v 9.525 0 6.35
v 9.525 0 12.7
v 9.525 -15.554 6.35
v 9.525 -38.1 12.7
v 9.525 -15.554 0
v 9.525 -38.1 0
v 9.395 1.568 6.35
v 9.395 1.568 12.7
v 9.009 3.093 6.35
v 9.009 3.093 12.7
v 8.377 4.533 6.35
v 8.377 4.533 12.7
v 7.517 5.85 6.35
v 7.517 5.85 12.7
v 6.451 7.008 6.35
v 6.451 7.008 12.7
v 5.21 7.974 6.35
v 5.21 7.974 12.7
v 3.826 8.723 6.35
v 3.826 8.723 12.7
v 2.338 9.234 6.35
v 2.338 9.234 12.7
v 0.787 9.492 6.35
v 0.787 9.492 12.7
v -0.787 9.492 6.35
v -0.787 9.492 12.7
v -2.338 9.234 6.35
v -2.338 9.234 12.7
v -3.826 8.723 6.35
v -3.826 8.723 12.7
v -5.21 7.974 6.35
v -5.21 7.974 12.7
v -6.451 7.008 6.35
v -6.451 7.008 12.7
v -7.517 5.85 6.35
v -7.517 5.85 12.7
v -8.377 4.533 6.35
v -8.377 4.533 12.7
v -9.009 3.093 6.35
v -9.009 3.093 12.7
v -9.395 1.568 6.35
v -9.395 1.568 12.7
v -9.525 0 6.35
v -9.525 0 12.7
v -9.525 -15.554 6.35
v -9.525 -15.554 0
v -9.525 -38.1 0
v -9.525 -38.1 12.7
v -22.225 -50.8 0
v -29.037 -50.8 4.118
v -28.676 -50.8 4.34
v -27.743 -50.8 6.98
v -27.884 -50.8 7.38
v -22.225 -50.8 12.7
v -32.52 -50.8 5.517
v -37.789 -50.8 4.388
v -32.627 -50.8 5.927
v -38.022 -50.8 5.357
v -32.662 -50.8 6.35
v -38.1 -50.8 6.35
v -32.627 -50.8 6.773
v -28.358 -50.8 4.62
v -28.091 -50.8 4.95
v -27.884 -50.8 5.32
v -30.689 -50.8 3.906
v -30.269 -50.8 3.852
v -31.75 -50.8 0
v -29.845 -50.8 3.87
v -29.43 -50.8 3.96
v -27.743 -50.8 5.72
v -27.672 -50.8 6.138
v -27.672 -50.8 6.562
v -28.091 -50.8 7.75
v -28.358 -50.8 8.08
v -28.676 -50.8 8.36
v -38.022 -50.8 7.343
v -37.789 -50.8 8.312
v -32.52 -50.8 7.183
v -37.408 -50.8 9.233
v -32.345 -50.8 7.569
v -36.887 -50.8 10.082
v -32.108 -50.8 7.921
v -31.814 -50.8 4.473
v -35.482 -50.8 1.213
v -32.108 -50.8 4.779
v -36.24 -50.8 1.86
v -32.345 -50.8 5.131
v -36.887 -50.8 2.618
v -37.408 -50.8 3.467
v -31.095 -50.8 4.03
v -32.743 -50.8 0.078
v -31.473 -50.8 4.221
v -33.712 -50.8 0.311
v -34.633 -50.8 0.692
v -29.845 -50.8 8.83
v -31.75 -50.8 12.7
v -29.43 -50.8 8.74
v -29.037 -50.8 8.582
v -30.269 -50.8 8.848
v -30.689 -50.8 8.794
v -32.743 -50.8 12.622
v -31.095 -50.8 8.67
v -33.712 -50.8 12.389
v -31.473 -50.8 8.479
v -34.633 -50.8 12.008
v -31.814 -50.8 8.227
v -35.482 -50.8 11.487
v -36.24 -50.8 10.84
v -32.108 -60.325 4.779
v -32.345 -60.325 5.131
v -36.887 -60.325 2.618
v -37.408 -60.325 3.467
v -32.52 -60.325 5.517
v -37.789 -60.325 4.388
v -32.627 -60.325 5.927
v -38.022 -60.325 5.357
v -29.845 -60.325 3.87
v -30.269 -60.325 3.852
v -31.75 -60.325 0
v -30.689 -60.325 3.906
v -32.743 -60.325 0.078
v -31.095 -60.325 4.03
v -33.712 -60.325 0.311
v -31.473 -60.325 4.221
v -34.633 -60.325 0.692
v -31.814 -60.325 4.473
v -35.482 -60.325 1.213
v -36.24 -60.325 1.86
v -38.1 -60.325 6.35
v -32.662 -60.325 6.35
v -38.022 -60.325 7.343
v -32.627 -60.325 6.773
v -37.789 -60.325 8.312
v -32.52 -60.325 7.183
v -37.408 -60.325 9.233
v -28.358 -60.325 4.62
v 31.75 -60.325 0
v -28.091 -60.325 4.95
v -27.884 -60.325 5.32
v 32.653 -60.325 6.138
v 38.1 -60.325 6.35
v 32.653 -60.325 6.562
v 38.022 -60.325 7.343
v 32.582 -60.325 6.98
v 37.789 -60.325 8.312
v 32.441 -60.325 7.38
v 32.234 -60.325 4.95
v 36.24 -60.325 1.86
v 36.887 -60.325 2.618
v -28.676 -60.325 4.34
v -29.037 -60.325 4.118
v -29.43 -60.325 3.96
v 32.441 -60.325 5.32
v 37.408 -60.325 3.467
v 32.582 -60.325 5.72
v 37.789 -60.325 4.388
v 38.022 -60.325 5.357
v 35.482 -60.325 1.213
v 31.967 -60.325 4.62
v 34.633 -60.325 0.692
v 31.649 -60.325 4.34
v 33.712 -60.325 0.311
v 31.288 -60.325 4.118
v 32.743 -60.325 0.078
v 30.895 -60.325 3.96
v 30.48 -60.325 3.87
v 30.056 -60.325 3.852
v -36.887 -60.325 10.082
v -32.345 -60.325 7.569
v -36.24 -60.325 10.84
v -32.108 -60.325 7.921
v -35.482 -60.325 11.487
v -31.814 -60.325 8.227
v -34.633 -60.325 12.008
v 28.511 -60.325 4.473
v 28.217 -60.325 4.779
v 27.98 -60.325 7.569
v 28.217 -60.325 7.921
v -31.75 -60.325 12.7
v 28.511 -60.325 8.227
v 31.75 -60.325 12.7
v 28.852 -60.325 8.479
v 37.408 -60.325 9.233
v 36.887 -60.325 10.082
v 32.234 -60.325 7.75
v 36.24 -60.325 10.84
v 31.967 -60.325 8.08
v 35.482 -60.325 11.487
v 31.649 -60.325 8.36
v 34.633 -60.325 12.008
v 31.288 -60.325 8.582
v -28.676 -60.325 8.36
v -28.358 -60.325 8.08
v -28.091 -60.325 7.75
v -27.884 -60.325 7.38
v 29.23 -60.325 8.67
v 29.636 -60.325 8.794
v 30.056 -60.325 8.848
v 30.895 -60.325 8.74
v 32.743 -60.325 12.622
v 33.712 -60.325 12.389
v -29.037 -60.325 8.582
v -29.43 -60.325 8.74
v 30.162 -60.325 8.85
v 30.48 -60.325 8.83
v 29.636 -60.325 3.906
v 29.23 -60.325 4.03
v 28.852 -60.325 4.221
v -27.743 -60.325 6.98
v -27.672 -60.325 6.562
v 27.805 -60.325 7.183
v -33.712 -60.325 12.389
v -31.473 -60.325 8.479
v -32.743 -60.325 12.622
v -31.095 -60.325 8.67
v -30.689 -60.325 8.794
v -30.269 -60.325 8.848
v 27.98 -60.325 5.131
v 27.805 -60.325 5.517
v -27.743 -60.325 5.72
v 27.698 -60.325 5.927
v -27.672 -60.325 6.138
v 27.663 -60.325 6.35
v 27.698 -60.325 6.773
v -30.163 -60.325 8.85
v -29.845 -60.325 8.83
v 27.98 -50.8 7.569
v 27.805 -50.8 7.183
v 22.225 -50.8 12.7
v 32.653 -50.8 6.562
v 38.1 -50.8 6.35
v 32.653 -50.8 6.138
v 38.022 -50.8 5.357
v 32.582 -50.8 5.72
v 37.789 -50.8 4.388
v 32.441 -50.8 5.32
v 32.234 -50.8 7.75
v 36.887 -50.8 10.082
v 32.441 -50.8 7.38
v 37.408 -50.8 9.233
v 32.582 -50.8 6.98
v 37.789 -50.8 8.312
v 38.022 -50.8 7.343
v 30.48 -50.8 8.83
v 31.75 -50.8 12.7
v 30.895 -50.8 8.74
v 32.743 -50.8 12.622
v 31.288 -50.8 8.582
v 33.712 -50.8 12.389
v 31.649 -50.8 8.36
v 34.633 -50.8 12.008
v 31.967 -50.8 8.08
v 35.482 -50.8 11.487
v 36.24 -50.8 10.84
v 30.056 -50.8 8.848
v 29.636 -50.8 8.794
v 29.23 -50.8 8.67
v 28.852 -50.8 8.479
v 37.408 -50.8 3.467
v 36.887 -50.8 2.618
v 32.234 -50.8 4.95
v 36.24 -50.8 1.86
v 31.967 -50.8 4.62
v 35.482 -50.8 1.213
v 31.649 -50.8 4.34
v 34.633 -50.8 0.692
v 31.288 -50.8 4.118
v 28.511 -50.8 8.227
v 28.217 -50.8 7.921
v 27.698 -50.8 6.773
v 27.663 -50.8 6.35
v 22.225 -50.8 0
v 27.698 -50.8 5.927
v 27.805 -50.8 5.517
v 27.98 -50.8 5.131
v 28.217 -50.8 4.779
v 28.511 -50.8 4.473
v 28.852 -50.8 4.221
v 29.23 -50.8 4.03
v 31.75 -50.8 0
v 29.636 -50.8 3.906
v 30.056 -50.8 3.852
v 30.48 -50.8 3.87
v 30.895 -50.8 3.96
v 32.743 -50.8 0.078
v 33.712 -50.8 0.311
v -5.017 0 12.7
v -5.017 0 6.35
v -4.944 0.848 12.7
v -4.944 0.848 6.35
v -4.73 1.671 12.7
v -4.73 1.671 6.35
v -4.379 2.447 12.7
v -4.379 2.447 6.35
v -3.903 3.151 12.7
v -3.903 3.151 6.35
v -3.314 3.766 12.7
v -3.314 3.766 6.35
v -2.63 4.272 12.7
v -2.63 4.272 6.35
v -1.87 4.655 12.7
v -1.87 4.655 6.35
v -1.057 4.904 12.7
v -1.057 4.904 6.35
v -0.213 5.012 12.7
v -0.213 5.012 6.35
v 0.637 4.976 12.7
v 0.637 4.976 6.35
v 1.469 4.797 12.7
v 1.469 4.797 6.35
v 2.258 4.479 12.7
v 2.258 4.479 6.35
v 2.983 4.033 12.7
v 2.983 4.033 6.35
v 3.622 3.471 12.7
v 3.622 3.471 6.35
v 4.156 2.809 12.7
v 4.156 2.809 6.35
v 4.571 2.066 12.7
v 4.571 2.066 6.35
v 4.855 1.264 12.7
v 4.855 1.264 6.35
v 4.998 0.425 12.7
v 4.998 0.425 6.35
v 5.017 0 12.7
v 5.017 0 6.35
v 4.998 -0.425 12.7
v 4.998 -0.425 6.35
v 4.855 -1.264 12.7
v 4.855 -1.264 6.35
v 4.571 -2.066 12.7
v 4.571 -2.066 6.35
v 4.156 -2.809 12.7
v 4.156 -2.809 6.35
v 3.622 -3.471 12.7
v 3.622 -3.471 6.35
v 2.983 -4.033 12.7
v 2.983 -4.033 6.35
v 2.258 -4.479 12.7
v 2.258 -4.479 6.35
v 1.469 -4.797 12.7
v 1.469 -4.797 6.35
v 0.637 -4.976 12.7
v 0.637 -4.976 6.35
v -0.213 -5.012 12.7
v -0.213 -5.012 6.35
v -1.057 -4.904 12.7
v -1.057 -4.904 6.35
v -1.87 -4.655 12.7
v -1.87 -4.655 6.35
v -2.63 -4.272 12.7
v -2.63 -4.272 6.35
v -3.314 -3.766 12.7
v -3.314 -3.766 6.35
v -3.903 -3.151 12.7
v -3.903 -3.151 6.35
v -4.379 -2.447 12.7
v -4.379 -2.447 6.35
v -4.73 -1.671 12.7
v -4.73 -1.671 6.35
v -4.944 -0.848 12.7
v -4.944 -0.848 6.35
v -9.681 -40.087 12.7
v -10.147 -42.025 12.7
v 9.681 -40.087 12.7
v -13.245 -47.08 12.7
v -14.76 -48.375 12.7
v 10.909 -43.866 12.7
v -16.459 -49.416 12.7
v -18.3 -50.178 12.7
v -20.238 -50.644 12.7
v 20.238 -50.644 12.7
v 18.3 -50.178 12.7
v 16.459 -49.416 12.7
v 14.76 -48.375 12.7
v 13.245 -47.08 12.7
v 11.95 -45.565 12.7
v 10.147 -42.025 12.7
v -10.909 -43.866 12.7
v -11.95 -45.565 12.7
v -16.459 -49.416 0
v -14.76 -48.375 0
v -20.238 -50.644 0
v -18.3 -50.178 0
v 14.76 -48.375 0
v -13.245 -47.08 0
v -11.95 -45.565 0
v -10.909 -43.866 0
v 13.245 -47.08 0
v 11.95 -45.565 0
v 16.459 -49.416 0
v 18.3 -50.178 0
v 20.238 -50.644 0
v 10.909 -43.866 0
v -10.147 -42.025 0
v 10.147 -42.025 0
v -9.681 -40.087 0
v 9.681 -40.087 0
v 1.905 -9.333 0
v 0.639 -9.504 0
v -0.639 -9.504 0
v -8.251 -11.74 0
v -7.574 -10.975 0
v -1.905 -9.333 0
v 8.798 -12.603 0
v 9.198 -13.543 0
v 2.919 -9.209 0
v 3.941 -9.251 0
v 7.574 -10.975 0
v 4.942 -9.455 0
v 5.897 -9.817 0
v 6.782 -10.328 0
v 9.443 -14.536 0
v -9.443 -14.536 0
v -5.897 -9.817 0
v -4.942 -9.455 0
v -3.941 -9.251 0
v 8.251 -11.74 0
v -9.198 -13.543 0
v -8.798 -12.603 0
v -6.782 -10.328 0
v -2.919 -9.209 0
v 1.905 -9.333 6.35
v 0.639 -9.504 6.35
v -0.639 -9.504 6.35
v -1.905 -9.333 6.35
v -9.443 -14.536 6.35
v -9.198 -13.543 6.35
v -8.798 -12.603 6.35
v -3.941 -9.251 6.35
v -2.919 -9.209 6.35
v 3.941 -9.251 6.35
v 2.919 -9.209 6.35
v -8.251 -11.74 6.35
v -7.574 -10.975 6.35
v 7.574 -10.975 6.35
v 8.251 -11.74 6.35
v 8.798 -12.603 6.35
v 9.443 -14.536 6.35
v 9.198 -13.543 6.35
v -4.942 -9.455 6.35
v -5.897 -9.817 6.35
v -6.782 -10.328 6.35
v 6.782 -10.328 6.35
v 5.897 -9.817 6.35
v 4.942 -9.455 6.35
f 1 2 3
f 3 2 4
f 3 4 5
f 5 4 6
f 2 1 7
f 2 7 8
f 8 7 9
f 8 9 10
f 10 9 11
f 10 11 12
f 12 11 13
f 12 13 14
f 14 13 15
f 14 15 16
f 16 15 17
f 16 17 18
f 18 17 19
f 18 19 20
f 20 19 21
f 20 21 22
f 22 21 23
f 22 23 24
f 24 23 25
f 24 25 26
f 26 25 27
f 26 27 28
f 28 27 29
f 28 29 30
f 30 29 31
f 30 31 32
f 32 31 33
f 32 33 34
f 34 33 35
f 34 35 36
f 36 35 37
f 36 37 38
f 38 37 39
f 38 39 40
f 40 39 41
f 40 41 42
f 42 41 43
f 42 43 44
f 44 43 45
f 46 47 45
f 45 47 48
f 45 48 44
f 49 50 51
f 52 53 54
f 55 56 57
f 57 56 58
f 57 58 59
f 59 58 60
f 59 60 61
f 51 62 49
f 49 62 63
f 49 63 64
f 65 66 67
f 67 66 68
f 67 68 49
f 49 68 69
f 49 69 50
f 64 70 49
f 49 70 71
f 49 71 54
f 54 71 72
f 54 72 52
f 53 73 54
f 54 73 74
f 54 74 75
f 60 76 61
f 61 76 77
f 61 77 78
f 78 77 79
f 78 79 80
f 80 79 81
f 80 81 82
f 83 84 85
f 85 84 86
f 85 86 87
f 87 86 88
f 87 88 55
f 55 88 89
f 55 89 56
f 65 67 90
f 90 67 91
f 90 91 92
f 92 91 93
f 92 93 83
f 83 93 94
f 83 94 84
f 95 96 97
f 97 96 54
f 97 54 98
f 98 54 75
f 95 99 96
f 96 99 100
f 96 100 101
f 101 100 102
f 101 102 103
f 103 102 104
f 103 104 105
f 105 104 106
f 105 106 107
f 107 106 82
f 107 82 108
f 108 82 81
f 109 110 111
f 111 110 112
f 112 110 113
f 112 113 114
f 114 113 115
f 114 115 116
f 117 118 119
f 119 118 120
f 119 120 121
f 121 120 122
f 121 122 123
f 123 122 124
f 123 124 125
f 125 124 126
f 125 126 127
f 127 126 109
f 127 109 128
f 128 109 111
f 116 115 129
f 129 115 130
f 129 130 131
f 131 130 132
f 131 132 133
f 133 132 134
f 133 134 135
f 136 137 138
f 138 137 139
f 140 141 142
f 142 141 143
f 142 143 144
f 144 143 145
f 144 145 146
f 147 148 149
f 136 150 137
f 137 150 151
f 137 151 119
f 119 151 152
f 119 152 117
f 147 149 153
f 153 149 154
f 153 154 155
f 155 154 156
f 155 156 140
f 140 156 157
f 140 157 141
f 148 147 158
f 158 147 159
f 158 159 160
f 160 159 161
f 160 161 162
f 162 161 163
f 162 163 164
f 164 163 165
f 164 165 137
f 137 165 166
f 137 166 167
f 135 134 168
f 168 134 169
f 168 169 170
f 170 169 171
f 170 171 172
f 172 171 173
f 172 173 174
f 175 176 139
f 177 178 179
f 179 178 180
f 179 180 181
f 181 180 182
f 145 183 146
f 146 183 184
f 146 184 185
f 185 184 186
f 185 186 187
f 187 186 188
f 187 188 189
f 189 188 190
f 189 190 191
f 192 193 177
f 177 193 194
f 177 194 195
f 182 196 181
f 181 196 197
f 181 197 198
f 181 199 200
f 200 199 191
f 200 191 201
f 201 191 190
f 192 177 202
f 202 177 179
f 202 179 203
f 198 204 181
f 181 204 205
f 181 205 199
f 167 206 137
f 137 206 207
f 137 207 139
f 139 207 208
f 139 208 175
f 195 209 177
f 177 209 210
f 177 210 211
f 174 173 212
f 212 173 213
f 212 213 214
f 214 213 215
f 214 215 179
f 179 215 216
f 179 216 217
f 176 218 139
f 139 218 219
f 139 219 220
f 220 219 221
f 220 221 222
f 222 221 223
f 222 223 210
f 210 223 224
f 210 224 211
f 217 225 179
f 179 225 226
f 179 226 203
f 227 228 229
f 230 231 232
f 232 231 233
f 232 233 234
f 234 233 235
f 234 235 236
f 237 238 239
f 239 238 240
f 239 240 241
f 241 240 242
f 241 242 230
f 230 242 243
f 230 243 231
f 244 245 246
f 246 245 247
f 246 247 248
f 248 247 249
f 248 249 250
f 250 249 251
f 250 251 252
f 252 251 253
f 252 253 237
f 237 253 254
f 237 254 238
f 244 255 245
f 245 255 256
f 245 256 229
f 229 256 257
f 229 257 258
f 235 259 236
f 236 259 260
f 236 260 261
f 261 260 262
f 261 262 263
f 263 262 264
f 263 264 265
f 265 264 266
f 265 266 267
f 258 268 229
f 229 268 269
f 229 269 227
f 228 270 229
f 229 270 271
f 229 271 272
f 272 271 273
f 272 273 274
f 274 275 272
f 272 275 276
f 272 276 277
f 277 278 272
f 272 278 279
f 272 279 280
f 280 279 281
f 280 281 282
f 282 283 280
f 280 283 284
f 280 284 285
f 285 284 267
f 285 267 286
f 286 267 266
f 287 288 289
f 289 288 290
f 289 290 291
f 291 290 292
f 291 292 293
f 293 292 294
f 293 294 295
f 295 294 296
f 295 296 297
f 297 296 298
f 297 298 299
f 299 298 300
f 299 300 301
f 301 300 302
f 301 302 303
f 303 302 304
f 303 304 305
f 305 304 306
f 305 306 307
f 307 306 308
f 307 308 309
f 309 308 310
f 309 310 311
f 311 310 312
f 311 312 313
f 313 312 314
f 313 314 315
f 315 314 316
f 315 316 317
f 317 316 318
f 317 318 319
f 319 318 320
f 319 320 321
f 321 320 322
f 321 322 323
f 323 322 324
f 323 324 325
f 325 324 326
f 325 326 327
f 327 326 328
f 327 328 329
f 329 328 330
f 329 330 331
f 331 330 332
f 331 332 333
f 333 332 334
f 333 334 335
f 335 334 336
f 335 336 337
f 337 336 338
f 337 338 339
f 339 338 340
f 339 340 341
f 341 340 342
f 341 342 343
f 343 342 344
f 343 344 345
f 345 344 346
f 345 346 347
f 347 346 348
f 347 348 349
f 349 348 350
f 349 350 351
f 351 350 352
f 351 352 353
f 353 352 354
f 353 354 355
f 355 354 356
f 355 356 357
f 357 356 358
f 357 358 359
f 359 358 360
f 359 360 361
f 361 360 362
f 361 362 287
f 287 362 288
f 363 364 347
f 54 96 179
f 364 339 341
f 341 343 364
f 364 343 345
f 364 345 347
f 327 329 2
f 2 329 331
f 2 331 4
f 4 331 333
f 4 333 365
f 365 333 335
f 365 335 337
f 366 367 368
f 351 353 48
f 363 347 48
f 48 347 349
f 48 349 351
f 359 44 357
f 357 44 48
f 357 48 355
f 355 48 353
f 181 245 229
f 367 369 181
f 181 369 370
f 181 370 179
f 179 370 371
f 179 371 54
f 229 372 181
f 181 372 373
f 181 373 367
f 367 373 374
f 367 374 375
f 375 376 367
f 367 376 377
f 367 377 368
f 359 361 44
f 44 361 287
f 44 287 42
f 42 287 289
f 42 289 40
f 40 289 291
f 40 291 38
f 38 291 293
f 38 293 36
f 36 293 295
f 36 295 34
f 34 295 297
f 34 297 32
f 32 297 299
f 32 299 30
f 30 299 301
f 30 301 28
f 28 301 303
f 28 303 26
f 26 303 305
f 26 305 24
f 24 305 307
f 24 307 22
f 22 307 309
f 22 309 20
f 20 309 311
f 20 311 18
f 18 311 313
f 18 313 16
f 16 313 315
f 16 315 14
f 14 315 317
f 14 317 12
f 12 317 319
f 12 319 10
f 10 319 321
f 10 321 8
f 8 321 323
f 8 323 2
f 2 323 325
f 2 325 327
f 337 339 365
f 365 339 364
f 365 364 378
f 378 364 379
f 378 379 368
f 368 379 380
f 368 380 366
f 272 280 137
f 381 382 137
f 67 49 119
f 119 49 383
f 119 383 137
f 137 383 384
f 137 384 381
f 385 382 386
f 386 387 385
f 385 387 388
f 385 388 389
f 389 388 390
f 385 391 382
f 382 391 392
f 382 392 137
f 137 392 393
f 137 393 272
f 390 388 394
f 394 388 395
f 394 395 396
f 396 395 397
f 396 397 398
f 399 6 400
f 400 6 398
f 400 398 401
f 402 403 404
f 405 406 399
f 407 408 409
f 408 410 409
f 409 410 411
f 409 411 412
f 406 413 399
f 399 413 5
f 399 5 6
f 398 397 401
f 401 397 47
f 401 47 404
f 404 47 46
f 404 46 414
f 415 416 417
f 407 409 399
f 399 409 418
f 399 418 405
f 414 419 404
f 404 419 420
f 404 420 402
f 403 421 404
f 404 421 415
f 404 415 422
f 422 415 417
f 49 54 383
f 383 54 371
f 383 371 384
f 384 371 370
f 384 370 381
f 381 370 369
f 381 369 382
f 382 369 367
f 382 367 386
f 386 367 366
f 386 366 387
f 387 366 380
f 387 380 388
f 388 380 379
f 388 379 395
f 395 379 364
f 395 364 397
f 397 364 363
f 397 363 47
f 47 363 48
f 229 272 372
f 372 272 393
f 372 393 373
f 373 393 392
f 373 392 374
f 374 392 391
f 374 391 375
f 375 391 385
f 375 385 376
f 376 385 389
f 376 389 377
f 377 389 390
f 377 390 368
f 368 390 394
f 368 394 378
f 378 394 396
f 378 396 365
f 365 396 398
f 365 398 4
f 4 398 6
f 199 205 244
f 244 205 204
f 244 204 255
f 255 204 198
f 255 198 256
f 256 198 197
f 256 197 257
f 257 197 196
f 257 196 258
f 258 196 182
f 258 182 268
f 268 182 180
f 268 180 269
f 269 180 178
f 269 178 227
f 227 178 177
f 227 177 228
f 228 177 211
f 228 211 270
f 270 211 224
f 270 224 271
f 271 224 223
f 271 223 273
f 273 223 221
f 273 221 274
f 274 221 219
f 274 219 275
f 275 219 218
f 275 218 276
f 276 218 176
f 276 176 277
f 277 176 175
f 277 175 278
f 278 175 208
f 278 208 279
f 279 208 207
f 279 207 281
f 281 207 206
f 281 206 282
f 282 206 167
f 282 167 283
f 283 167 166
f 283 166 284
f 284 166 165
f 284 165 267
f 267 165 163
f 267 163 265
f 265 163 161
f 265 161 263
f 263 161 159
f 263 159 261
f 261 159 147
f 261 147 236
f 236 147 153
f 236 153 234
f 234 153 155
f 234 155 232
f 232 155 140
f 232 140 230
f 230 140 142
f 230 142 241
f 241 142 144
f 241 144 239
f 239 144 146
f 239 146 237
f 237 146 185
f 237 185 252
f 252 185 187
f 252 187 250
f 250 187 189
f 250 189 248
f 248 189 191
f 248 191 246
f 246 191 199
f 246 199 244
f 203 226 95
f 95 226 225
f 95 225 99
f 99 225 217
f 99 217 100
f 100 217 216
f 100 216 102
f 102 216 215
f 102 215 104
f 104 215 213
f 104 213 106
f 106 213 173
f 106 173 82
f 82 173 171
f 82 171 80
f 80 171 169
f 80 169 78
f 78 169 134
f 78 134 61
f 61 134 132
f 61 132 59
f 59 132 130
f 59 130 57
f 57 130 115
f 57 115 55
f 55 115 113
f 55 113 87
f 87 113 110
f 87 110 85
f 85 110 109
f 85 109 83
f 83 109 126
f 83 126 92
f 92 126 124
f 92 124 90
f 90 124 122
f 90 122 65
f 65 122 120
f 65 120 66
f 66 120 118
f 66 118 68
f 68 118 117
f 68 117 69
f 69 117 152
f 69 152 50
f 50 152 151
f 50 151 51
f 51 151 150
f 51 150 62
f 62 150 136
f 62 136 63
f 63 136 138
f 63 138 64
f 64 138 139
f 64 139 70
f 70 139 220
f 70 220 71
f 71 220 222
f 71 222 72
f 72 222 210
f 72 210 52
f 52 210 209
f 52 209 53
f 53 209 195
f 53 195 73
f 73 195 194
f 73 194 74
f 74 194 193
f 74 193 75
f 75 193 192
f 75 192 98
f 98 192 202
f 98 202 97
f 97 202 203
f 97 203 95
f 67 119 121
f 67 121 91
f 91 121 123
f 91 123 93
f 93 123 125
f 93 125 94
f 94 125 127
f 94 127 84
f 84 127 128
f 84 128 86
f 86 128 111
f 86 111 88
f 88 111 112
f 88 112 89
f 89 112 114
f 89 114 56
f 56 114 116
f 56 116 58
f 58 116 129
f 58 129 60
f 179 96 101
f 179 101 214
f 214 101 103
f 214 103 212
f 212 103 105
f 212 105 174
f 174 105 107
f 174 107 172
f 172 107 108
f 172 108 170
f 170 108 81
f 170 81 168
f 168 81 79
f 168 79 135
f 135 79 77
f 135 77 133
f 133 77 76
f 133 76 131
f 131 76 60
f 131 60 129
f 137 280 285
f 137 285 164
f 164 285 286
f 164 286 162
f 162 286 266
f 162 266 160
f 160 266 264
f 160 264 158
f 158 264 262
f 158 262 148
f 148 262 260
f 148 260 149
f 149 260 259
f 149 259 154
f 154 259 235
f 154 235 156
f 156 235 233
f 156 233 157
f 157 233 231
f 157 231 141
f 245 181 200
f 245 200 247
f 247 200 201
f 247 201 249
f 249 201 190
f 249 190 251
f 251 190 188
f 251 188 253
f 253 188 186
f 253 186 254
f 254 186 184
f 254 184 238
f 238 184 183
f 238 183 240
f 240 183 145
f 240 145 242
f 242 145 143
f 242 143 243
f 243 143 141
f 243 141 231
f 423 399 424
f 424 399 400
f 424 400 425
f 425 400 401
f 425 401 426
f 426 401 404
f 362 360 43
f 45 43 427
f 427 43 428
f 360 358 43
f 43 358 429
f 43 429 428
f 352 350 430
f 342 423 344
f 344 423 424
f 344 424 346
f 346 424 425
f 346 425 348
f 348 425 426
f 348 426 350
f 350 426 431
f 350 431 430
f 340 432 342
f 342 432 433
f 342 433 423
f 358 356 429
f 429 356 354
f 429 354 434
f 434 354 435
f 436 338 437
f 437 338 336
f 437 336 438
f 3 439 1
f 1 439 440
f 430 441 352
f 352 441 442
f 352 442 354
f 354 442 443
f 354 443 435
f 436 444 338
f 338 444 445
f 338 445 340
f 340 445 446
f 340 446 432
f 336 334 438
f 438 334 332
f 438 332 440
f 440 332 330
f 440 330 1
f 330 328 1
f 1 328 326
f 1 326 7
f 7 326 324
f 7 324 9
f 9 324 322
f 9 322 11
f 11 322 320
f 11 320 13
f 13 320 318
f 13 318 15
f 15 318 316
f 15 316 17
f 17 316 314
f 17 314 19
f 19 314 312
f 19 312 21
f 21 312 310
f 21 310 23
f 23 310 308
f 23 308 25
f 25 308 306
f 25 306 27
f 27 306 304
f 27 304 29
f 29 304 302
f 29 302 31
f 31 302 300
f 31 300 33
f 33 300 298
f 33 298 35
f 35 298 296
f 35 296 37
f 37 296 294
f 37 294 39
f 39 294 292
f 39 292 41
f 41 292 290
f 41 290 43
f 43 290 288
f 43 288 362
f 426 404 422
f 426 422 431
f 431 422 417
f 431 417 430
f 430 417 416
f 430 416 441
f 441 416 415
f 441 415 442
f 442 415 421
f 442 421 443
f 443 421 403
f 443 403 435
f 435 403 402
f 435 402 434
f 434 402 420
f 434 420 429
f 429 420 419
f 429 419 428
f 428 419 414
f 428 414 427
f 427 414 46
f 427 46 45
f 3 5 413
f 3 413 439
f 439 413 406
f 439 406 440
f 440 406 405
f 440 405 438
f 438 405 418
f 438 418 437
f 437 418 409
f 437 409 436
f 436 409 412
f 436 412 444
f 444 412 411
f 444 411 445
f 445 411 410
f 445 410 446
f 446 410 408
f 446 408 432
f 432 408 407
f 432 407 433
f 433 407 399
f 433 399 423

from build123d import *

# Parameters (mm, degrees)
SKETCH2_R           = 9.525
SKETCH2_R_2         = 4.7625
BOSS_EXTRUDE1_DEPTH = 12.7
FILLET1_R           = 12.7
SKETCH3_R           = 2.5
CUT_EXTRUDE1_DEPTH  = 35.56
FILLET2_R           = 6.35
SKETCH4_R           = 4.7625
CUT_EXTRUDE2_DEPTH  = 6.35
FILLET3_START       = -1
FILLET3_DEPTH       = 7.35


with BuildPart() as part:
    # Sketch2 → Boss-Extrude1 (new body)
    # profile 1 of 2: a face of its own
    with BuildSketch(Plane.XY):
        with BuildLine():
            ThreePointArc((9.525, 0), (0, -9.525), (-9.525, 0))
            Line((-9.525, 0), (-9.525, -50.8))
            Line((-9.525, -50.8), (-38.1, -50.8))
            Line((-38.1, -50.8), (-38.1, -60.325))
            Line((-38.1, -60.325), (38.1, -60.325))
            Line((38.1, -60.325), (38.1, -50.8))
            Line((38.1, -50.8), (9.525, -50.8))
            Line((9.525, -50.8), (9.525, 0))
        make_face()
    # profile 2 of 2: a face of its own
    with BuildSketch(Plane.XY):
        Circle(SKETCH2_R)
        Circle(SKETCH2_R_2, mode=Mode.SUBTRACT)
    extrude(amount=BOSS_EXTRUDE1_DEPTH)

    # Fillet1
    fillet1_edges = [part.edges().sort_by_distance(p)[0] for p in [
        (9.525, -50.8, 6.35),
        (-9.525, -50.8, 6.35),
    ]]
    fillet(fillet1_edges, radius=FILLET1_R)

    # Sketch3 → Cut-Extrude1 (cut)
    with BuildSketch(Plane(origin=(0, -50.8, 0), x_dir=(1, 0, 0), z_dir=(0, 1, 0))):
        with Locations(Location((30.1625, -6.35, 0), (0, 0, 180))):
            Circle(SKETCH3_R)
        with Locations(Location((-30.1625, -6.35, 0), (0, 0, 180))):
            Circle(SKETCH3_R)
    extrude(amount=-CUT_EXTRUDE1_DEPTH, mode=Mode.SUBTRACT)

    # Fillet2
    fillet2_edges = [part.edges().sort_by_distance(p)[0] for p in [
        (38.1, -55.5625, 0),
        (38.1, -55.5625, 12.7),
        (-38.1, -55.5625, 0),
        (-38.1, -55.5625, 12.7),
    ]]
    fillet(fillet2_edges, radius=FILLET2_R - 0.0001)  # a hair under: the kernel refuses the full size

    # Sketch4 → Cut-Extrude2 (cut)
    with BuildSketch(Plane(origin=(0, 0, 0), x_dir=(-1, 0, 0), z_dir=(0, 0, -1))):
        with BuildLine():
            ThreePointArc((-9.525, 0), (0, -9.525), (9.525, 0))
            ThreePointArc((9.525, 0), (0, 9.525), (-9.525, 0))
        make_face()
        with Locations(Location((0, 0, 0), (0, 0, 180))):
            Circle(SKETCH4_R, mode=Mode.SUBTRACT)
    extrude(amount=-CUT_EXTRUDE2_DEPTH, mode=Mode.SUBTRACT)

    # Fillet3: read off the stored shape, not the designer's step
    # Fillet3 outline → Fillet3 (cut)
    with BuildSketch(Plane.XY.offset(FILLET3_START)):
        with BuildLine():
            Line((-9.525, 0), (-9.525, -15.554259867))
            ThreePointArc((-9.525, -15.554259867), (-7.191092628, -10.635571017), (-1.905, -9.33255592))
            ThreePointArc((-1.905, -9.33255592), (-7.378033275, -6.024138943), (-9.525, 0))
        make_face()
        with BuildLine():
            ThreePointArc((9.525, 0), (7.378033275, -6.024138943), (1.905, -9.33255592))
            ThreePointArc((1.905, -9.33255592), (7.191092628, -10.635571017), (9.525, -15.554259867))
            Line((9.525, -15.554259867), (9.525, 0))
        make_face()
    extrude(amount=FILLET3_DEPTH, mode=Mode.SUBTRACT)


solid = part.part
